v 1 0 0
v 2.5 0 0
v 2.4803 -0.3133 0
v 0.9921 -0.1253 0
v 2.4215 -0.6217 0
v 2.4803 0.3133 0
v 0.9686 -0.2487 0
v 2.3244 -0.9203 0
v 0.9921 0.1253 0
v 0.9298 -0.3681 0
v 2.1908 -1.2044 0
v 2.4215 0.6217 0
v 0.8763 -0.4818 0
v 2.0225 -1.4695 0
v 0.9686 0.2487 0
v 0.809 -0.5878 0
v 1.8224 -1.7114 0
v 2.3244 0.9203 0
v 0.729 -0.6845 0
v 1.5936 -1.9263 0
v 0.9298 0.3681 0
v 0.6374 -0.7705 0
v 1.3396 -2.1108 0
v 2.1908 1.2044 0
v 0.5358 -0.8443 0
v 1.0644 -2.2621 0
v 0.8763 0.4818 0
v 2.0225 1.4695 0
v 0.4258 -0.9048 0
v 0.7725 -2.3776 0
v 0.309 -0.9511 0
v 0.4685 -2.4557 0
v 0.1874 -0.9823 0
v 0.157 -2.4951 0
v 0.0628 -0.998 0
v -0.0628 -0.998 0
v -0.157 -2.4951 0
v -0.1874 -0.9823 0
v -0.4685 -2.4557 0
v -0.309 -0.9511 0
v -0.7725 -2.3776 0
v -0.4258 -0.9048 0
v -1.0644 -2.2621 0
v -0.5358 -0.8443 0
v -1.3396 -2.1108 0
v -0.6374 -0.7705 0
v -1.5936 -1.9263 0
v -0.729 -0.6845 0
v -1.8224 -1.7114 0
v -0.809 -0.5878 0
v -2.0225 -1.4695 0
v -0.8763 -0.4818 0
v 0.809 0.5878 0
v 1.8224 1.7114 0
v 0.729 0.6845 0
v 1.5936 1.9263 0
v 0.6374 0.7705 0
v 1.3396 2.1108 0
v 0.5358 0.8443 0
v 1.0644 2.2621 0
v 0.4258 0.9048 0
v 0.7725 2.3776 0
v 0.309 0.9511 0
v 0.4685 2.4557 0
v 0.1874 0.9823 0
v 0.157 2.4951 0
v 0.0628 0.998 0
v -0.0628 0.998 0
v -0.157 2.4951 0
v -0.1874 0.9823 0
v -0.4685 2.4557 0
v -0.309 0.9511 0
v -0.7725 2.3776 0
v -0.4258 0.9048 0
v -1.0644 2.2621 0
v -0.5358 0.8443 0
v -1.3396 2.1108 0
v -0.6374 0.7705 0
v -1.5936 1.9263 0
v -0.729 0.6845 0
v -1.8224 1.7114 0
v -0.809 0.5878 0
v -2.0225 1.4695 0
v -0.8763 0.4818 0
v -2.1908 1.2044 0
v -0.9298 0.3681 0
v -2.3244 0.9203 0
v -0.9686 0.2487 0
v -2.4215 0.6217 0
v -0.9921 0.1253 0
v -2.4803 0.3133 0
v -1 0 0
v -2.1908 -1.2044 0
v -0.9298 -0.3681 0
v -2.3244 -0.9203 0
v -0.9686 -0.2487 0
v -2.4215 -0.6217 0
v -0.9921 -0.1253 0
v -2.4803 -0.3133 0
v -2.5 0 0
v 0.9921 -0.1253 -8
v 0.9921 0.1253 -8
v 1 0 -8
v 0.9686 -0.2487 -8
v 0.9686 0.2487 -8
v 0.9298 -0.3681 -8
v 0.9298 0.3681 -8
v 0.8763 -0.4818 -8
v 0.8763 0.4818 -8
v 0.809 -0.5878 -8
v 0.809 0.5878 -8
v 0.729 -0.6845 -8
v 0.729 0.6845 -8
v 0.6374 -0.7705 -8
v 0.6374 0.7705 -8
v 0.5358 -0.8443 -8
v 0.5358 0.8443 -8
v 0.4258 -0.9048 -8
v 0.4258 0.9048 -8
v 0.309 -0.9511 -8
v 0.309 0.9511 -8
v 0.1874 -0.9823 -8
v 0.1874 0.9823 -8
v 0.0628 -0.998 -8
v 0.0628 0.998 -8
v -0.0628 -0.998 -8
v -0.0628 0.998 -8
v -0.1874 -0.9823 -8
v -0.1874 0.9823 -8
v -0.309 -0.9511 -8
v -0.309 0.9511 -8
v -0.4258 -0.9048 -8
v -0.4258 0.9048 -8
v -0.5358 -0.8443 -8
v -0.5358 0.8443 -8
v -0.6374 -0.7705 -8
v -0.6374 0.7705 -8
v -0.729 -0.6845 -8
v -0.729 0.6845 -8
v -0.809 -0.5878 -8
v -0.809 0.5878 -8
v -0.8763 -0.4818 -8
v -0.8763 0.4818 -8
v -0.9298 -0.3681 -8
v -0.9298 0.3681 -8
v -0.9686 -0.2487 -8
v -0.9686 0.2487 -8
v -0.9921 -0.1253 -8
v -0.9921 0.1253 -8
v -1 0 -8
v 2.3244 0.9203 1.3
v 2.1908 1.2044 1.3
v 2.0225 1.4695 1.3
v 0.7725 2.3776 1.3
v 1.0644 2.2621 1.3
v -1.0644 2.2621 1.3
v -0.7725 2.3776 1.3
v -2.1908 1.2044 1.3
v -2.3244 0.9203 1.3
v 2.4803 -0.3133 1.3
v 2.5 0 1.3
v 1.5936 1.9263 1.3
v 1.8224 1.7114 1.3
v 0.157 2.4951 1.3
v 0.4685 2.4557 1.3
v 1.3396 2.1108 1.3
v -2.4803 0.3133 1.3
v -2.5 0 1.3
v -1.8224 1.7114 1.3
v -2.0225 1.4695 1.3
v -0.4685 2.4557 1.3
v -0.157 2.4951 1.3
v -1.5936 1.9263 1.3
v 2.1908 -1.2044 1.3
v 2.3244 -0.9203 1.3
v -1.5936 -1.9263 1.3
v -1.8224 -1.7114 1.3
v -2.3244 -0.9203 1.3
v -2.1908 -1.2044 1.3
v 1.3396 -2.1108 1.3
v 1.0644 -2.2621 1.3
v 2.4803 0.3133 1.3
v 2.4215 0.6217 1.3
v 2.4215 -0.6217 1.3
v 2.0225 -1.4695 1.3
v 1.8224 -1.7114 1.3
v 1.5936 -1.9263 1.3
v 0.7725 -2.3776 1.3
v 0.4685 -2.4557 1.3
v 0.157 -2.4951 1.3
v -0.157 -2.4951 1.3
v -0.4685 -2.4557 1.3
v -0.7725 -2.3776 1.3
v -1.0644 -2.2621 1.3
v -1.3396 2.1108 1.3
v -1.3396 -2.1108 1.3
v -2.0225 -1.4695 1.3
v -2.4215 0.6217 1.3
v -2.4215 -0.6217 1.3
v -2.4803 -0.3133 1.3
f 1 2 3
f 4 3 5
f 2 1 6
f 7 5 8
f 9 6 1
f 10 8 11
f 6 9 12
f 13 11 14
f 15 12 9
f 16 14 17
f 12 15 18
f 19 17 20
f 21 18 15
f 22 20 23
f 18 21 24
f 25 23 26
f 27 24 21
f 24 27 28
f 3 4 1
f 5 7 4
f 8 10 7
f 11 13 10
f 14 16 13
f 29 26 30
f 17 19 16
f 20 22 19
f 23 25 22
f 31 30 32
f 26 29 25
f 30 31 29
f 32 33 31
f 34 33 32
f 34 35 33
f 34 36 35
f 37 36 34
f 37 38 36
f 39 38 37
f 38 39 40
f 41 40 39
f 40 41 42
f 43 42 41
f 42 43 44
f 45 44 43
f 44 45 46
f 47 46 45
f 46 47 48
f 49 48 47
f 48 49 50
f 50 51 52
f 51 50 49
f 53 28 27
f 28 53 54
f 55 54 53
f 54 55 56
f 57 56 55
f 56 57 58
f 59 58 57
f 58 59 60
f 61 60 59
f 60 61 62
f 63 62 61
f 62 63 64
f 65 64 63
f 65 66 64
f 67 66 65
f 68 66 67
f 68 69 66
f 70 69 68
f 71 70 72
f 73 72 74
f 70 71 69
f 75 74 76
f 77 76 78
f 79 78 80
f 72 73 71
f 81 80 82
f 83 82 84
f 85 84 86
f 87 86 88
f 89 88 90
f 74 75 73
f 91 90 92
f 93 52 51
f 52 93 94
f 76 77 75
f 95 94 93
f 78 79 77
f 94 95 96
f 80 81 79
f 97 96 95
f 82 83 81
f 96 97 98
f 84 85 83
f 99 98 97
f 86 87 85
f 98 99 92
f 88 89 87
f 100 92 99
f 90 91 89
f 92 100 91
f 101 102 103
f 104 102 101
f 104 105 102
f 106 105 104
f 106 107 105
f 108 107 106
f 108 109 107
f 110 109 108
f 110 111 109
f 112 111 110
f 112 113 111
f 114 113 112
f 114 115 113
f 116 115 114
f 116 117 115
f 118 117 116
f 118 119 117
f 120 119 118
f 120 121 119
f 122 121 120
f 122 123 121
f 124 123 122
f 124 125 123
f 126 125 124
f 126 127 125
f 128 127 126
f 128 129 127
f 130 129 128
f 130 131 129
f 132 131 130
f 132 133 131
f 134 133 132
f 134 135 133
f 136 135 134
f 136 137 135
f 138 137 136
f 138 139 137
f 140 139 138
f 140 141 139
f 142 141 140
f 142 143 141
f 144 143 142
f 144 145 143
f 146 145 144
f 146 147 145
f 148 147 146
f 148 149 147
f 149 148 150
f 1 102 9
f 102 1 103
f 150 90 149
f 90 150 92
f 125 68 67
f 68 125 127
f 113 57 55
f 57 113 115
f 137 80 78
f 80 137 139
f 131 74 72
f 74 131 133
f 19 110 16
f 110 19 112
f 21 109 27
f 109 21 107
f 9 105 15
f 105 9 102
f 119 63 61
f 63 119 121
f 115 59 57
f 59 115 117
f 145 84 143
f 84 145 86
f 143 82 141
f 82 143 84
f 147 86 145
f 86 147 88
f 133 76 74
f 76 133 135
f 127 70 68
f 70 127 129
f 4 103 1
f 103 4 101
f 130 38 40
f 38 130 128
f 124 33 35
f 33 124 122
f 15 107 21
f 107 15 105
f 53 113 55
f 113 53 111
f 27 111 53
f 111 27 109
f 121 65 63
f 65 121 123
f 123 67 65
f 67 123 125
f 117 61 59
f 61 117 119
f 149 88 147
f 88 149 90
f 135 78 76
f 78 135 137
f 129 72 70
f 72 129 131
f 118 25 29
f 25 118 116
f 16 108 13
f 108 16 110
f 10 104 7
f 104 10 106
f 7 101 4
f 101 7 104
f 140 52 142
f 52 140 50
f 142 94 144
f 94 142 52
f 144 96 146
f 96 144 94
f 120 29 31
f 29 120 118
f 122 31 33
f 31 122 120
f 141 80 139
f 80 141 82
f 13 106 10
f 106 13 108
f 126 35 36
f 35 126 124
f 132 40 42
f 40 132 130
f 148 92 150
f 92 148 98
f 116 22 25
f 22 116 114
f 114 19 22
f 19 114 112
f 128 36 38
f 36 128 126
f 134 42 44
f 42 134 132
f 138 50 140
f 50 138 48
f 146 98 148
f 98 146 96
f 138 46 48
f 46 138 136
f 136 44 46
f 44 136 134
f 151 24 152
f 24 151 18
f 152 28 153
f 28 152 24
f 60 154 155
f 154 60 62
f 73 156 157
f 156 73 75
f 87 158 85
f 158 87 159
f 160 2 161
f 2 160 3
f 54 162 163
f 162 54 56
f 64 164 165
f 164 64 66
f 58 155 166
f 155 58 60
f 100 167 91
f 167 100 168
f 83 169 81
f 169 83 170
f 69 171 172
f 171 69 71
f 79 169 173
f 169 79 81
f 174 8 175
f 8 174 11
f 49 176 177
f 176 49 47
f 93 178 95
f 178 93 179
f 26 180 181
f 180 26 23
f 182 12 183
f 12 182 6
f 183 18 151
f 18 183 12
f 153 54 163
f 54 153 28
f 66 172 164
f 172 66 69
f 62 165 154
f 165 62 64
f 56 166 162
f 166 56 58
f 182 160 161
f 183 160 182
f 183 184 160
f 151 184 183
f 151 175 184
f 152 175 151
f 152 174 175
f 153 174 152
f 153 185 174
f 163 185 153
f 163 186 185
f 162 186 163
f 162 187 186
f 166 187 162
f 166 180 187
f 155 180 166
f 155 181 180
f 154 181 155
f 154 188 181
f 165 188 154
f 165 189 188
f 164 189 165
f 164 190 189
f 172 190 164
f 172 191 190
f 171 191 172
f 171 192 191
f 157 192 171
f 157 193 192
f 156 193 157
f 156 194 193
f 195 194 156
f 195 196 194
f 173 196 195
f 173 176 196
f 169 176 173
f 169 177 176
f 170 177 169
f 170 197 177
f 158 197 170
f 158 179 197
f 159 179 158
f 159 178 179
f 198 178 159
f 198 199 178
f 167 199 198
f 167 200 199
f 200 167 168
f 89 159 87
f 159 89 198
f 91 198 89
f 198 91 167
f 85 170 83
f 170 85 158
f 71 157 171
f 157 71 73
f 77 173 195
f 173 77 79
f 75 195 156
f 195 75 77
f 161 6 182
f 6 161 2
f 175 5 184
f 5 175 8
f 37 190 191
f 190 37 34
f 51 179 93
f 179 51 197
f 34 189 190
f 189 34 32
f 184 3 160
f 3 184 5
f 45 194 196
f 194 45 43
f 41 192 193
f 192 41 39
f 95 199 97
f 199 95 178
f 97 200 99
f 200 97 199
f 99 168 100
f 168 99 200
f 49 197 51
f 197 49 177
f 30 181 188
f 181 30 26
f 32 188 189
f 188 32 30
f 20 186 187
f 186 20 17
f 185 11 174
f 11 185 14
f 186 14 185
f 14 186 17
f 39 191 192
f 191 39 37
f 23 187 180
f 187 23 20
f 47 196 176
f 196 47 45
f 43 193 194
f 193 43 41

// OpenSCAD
$fn = 50;


difference() {
	union() {
		translate(v = [0, 0, 0]) {
			rotate(a = [0, 0, 0]) {
				difference() {
					union() {
						translate(v = [0, 0, -8.0000000000]) {
							cylinder(h = 8, r = 0.7500000000);
						}
						translate(v = [0, 0, -8.0000000000]) {
							cylinder(h = 8, r = 1.0000000000);
						}
						cylinder(h = 1.3000000000, r = 2.5000000000);
						translate(v = [0, 0, -8.0000000000]) {
							cylinder(h = 8, r = 0.7500000000);
						}
					}
					union();
				}
			}
		}
	}
	union();
}
